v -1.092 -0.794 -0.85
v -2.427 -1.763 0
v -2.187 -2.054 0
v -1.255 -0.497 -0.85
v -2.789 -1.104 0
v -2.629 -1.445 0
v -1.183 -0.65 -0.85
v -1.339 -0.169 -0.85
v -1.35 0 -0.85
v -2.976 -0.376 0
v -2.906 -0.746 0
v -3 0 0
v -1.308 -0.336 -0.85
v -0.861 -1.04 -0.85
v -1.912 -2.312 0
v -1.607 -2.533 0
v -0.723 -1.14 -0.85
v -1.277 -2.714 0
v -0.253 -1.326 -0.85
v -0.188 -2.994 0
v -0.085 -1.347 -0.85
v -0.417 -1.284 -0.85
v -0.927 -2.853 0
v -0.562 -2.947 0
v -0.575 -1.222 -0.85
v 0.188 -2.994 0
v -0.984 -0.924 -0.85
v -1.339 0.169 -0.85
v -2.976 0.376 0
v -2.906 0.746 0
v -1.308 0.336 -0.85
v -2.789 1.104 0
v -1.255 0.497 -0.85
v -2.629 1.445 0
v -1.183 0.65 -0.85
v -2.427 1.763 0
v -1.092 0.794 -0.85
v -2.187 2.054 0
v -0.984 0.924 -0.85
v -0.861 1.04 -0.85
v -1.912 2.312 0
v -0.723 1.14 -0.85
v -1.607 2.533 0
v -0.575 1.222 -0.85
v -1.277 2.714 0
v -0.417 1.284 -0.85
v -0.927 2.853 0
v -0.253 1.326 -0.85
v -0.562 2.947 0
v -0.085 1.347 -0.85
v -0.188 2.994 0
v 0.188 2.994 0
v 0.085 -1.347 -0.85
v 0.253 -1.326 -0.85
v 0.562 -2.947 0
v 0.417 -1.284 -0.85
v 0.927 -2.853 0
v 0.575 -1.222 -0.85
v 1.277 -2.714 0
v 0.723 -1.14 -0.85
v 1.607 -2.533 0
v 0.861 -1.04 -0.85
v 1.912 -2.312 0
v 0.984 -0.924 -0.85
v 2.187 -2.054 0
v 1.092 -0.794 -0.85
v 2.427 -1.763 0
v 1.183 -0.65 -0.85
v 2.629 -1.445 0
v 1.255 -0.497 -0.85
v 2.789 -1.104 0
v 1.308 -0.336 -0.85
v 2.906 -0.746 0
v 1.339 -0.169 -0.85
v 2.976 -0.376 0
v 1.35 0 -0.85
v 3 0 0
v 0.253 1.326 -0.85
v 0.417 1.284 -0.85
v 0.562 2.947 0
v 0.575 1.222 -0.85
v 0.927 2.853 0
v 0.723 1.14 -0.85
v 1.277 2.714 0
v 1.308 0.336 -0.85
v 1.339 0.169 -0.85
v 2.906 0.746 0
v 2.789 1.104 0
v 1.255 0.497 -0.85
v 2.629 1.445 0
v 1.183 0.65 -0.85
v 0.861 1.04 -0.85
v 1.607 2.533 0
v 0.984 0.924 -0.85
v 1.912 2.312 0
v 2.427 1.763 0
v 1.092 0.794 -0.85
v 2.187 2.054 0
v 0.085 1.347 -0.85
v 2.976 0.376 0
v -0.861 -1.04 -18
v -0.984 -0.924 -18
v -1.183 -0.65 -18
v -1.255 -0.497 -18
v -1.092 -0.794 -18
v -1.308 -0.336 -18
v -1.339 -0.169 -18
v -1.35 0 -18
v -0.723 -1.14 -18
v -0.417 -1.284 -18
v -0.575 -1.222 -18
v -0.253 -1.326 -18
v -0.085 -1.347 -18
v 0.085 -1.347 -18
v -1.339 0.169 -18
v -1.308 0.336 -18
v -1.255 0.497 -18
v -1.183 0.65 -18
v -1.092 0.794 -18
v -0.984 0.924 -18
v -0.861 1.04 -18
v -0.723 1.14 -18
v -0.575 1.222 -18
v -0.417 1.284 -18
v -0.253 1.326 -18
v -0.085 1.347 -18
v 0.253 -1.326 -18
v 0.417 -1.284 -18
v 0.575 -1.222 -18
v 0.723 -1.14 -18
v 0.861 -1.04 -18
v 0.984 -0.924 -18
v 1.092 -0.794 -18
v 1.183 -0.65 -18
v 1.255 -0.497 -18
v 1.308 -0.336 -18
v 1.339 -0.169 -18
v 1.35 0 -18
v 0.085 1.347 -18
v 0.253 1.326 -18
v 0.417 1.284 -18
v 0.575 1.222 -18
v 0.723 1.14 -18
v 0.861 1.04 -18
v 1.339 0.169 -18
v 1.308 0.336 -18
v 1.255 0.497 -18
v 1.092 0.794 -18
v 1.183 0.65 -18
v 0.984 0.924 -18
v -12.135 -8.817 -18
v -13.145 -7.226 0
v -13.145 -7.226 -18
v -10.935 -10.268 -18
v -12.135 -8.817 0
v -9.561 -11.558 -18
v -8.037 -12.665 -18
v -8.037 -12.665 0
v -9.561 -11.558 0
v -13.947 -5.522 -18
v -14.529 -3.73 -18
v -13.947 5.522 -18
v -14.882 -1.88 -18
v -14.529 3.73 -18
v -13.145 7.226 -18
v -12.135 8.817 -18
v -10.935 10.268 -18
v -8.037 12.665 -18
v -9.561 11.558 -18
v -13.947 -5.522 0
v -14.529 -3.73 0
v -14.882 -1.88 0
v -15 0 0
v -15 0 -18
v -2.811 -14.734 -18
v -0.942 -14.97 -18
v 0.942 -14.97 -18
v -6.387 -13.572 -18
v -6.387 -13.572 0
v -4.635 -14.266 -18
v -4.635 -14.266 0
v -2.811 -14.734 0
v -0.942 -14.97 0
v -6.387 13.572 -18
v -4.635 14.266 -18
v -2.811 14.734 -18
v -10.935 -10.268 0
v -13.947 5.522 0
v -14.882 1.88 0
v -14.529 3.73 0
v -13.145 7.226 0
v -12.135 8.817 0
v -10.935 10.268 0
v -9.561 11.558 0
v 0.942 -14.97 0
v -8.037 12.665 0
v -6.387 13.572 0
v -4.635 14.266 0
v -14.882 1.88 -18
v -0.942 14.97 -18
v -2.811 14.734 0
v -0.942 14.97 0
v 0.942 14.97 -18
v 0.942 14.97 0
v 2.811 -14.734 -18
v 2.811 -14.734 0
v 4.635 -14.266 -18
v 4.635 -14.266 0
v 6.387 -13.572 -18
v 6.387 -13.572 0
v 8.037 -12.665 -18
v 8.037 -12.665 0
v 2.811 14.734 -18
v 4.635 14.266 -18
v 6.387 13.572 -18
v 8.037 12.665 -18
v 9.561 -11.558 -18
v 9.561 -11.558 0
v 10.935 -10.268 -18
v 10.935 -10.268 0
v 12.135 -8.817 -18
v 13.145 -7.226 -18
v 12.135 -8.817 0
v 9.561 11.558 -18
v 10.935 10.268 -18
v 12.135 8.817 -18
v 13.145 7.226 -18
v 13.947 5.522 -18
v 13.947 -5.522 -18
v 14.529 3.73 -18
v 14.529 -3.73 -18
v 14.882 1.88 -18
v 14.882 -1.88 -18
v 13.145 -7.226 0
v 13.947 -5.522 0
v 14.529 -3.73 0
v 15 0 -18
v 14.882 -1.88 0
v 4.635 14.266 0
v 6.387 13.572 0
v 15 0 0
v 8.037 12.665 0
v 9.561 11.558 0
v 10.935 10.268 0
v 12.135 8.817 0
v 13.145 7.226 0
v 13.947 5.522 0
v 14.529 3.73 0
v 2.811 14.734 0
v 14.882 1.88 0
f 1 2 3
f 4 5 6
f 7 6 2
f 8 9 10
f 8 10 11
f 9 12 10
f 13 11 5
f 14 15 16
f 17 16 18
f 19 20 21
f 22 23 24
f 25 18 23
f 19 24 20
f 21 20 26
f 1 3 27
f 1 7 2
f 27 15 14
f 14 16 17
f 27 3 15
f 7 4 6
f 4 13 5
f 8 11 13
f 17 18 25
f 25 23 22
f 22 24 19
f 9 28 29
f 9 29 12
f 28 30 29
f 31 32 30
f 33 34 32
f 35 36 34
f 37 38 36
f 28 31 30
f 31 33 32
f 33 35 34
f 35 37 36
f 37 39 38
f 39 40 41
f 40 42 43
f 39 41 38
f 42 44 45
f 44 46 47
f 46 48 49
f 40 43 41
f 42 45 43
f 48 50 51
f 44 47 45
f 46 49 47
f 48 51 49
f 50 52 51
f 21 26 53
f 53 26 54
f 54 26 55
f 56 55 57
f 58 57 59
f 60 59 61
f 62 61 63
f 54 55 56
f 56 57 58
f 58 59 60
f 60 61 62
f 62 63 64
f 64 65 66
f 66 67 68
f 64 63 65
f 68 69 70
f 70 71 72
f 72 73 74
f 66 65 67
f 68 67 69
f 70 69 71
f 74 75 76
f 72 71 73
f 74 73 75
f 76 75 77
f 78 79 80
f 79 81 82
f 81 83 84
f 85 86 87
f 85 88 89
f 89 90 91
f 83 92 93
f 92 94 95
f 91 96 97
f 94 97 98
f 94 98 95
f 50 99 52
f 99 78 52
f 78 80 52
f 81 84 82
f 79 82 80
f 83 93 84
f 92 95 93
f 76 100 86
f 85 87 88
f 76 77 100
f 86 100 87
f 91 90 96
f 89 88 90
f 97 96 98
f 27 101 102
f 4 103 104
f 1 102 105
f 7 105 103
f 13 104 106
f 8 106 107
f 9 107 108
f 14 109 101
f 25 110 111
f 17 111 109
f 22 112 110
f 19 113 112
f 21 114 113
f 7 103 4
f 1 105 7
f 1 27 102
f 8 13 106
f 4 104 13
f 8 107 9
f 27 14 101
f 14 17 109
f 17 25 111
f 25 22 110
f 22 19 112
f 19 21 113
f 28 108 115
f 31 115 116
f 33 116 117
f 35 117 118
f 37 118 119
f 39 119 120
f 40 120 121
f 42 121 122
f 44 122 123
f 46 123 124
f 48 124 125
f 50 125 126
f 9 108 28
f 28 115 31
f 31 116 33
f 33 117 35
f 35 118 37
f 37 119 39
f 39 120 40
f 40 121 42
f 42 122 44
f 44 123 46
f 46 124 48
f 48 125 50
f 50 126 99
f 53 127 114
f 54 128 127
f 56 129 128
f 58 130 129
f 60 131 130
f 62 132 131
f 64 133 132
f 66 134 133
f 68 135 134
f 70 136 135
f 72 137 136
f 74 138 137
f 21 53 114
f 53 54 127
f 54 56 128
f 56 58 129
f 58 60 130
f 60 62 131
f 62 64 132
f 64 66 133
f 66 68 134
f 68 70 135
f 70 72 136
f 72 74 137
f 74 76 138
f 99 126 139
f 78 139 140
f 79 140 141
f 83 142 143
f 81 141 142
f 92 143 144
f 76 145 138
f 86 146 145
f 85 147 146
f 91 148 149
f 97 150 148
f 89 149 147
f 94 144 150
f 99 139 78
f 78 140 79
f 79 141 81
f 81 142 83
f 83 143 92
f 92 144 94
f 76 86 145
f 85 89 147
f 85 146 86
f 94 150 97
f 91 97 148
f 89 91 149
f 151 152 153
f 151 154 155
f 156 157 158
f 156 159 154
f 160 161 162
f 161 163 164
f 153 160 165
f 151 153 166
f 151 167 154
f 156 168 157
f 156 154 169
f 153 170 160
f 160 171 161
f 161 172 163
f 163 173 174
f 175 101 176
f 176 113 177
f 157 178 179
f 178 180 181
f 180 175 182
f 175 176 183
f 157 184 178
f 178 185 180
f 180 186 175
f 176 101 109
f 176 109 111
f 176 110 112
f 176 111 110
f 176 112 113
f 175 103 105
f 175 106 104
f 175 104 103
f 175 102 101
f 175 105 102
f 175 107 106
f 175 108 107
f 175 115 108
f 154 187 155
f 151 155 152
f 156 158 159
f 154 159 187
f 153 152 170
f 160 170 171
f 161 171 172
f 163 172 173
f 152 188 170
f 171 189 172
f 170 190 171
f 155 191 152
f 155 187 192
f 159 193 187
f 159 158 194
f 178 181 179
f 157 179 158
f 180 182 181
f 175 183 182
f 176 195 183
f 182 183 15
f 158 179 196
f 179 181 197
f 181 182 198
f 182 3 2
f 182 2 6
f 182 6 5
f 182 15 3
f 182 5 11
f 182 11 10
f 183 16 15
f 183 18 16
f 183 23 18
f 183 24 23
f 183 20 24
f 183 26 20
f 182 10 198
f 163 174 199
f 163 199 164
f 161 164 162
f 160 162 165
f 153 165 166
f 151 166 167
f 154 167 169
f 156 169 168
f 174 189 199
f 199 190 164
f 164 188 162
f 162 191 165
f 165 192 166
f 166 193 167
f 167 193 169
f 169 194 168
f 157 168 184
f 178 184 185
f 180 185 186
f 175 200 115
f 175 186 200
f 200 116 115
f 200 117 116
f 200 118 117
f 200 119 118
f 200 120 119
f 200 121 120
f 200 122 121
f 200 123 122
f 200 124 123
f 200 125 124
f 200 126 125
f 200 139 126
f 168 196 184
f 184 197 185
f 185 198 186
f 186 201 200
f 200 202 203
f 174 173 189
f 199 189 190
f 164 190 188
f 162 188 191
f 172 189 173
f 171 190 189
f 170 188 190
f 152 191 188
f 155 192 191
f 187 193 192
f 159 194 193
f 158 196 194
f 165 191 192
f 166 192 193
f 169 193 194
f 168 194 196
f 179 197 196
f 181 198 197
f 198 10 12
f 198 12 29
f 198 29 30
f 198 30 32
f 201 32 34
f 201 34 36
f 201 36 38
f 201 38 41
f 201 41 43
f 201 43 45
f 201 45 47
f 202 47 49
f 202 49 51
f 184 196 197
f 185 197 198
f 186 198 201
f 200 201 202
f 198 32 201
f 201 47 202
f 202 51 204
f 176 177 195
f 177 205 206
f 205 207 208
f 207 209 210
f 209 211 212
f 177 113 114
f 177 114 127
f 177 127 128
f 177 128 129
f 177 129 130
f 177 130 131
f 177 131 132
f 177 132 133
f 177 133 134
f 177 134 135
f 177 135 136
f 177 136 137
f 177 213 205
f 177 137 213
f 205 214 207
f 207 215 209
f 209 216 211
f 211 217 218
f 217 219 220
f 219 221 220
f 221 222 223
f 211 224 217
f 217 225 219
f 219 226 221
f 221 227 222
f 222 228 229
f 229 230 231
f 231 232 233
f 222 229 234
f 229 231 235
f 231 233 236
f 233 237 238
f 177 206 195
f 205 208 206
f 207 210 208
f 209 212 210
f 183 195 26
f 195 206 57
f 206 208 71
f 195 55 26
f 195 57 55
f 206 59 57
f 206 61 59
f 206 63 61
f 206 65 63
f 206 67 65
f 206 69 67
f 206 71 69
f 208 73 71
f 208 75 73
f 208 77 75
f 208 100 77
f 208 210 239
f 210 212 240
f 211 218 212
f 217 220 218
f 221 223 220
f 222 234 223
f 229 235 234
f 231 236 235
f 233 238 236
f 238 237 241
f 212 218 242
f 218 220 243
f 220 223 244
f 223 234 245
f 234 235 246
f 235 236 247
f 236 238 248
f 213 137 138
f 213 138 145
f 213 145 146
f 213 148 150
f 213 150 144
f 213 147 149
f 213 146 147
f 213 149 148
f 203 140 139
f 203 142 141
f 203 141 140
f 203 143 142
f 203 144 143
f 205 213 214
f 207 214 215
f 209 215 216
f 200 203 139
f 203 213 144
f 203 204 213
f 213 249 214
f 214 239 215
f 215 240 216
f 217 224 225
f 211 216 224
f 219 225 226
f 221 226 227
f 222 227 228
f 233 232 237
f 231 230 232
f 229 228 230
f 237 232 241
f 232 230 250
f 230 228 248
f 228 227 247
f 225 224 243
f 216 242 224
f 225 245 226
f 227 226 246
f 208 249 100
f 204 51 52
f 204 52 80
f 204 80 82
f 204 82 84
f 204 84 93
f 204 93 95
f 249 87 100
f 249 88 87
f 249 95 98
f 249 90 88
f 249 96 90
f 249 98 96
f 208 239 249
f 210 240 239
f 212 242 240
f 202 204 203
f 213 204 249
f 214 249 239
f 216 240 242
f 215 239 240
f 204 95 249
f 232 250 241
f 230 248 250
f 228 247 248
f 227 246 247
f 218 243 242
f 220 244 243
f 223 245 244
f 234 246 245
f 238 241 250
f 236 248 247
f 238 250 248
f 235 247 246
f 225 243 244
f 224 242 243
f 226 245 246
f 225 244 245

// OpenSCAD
$fn = 50;


difference() {
	union() {
		translate(v = [0, 0, -18.0000000000]) {
			cylinder(h = 18, r = 15.0000000000);
		}
	}
	union() {
		translate(v = [0, 0, 0]) {
			rotate(a = [0, 0, 0]) {
				difference() {
					union() {
						translate(v = [0, 0, -21.0000000000]) {
							cylinder(h = 21, r = 1.0000000000);
						}
						translate(v = [0, 0, -0.8500000000]) {
							cylinder(h = 0.8500000000, r1 = 1.3500000000, r2 = 3.0000000000);
						}
						translate(v = [0, 0, -21.0000000000]) {
							cylinder(h = 21, r = 1.3500000000);
						}
						translate(v = [0, 0, -21.0000000000]) {
							cylinder(h = 21, r = 1.0000000000);
						}
					}
					union();
				}
			}
		}
	}
}
